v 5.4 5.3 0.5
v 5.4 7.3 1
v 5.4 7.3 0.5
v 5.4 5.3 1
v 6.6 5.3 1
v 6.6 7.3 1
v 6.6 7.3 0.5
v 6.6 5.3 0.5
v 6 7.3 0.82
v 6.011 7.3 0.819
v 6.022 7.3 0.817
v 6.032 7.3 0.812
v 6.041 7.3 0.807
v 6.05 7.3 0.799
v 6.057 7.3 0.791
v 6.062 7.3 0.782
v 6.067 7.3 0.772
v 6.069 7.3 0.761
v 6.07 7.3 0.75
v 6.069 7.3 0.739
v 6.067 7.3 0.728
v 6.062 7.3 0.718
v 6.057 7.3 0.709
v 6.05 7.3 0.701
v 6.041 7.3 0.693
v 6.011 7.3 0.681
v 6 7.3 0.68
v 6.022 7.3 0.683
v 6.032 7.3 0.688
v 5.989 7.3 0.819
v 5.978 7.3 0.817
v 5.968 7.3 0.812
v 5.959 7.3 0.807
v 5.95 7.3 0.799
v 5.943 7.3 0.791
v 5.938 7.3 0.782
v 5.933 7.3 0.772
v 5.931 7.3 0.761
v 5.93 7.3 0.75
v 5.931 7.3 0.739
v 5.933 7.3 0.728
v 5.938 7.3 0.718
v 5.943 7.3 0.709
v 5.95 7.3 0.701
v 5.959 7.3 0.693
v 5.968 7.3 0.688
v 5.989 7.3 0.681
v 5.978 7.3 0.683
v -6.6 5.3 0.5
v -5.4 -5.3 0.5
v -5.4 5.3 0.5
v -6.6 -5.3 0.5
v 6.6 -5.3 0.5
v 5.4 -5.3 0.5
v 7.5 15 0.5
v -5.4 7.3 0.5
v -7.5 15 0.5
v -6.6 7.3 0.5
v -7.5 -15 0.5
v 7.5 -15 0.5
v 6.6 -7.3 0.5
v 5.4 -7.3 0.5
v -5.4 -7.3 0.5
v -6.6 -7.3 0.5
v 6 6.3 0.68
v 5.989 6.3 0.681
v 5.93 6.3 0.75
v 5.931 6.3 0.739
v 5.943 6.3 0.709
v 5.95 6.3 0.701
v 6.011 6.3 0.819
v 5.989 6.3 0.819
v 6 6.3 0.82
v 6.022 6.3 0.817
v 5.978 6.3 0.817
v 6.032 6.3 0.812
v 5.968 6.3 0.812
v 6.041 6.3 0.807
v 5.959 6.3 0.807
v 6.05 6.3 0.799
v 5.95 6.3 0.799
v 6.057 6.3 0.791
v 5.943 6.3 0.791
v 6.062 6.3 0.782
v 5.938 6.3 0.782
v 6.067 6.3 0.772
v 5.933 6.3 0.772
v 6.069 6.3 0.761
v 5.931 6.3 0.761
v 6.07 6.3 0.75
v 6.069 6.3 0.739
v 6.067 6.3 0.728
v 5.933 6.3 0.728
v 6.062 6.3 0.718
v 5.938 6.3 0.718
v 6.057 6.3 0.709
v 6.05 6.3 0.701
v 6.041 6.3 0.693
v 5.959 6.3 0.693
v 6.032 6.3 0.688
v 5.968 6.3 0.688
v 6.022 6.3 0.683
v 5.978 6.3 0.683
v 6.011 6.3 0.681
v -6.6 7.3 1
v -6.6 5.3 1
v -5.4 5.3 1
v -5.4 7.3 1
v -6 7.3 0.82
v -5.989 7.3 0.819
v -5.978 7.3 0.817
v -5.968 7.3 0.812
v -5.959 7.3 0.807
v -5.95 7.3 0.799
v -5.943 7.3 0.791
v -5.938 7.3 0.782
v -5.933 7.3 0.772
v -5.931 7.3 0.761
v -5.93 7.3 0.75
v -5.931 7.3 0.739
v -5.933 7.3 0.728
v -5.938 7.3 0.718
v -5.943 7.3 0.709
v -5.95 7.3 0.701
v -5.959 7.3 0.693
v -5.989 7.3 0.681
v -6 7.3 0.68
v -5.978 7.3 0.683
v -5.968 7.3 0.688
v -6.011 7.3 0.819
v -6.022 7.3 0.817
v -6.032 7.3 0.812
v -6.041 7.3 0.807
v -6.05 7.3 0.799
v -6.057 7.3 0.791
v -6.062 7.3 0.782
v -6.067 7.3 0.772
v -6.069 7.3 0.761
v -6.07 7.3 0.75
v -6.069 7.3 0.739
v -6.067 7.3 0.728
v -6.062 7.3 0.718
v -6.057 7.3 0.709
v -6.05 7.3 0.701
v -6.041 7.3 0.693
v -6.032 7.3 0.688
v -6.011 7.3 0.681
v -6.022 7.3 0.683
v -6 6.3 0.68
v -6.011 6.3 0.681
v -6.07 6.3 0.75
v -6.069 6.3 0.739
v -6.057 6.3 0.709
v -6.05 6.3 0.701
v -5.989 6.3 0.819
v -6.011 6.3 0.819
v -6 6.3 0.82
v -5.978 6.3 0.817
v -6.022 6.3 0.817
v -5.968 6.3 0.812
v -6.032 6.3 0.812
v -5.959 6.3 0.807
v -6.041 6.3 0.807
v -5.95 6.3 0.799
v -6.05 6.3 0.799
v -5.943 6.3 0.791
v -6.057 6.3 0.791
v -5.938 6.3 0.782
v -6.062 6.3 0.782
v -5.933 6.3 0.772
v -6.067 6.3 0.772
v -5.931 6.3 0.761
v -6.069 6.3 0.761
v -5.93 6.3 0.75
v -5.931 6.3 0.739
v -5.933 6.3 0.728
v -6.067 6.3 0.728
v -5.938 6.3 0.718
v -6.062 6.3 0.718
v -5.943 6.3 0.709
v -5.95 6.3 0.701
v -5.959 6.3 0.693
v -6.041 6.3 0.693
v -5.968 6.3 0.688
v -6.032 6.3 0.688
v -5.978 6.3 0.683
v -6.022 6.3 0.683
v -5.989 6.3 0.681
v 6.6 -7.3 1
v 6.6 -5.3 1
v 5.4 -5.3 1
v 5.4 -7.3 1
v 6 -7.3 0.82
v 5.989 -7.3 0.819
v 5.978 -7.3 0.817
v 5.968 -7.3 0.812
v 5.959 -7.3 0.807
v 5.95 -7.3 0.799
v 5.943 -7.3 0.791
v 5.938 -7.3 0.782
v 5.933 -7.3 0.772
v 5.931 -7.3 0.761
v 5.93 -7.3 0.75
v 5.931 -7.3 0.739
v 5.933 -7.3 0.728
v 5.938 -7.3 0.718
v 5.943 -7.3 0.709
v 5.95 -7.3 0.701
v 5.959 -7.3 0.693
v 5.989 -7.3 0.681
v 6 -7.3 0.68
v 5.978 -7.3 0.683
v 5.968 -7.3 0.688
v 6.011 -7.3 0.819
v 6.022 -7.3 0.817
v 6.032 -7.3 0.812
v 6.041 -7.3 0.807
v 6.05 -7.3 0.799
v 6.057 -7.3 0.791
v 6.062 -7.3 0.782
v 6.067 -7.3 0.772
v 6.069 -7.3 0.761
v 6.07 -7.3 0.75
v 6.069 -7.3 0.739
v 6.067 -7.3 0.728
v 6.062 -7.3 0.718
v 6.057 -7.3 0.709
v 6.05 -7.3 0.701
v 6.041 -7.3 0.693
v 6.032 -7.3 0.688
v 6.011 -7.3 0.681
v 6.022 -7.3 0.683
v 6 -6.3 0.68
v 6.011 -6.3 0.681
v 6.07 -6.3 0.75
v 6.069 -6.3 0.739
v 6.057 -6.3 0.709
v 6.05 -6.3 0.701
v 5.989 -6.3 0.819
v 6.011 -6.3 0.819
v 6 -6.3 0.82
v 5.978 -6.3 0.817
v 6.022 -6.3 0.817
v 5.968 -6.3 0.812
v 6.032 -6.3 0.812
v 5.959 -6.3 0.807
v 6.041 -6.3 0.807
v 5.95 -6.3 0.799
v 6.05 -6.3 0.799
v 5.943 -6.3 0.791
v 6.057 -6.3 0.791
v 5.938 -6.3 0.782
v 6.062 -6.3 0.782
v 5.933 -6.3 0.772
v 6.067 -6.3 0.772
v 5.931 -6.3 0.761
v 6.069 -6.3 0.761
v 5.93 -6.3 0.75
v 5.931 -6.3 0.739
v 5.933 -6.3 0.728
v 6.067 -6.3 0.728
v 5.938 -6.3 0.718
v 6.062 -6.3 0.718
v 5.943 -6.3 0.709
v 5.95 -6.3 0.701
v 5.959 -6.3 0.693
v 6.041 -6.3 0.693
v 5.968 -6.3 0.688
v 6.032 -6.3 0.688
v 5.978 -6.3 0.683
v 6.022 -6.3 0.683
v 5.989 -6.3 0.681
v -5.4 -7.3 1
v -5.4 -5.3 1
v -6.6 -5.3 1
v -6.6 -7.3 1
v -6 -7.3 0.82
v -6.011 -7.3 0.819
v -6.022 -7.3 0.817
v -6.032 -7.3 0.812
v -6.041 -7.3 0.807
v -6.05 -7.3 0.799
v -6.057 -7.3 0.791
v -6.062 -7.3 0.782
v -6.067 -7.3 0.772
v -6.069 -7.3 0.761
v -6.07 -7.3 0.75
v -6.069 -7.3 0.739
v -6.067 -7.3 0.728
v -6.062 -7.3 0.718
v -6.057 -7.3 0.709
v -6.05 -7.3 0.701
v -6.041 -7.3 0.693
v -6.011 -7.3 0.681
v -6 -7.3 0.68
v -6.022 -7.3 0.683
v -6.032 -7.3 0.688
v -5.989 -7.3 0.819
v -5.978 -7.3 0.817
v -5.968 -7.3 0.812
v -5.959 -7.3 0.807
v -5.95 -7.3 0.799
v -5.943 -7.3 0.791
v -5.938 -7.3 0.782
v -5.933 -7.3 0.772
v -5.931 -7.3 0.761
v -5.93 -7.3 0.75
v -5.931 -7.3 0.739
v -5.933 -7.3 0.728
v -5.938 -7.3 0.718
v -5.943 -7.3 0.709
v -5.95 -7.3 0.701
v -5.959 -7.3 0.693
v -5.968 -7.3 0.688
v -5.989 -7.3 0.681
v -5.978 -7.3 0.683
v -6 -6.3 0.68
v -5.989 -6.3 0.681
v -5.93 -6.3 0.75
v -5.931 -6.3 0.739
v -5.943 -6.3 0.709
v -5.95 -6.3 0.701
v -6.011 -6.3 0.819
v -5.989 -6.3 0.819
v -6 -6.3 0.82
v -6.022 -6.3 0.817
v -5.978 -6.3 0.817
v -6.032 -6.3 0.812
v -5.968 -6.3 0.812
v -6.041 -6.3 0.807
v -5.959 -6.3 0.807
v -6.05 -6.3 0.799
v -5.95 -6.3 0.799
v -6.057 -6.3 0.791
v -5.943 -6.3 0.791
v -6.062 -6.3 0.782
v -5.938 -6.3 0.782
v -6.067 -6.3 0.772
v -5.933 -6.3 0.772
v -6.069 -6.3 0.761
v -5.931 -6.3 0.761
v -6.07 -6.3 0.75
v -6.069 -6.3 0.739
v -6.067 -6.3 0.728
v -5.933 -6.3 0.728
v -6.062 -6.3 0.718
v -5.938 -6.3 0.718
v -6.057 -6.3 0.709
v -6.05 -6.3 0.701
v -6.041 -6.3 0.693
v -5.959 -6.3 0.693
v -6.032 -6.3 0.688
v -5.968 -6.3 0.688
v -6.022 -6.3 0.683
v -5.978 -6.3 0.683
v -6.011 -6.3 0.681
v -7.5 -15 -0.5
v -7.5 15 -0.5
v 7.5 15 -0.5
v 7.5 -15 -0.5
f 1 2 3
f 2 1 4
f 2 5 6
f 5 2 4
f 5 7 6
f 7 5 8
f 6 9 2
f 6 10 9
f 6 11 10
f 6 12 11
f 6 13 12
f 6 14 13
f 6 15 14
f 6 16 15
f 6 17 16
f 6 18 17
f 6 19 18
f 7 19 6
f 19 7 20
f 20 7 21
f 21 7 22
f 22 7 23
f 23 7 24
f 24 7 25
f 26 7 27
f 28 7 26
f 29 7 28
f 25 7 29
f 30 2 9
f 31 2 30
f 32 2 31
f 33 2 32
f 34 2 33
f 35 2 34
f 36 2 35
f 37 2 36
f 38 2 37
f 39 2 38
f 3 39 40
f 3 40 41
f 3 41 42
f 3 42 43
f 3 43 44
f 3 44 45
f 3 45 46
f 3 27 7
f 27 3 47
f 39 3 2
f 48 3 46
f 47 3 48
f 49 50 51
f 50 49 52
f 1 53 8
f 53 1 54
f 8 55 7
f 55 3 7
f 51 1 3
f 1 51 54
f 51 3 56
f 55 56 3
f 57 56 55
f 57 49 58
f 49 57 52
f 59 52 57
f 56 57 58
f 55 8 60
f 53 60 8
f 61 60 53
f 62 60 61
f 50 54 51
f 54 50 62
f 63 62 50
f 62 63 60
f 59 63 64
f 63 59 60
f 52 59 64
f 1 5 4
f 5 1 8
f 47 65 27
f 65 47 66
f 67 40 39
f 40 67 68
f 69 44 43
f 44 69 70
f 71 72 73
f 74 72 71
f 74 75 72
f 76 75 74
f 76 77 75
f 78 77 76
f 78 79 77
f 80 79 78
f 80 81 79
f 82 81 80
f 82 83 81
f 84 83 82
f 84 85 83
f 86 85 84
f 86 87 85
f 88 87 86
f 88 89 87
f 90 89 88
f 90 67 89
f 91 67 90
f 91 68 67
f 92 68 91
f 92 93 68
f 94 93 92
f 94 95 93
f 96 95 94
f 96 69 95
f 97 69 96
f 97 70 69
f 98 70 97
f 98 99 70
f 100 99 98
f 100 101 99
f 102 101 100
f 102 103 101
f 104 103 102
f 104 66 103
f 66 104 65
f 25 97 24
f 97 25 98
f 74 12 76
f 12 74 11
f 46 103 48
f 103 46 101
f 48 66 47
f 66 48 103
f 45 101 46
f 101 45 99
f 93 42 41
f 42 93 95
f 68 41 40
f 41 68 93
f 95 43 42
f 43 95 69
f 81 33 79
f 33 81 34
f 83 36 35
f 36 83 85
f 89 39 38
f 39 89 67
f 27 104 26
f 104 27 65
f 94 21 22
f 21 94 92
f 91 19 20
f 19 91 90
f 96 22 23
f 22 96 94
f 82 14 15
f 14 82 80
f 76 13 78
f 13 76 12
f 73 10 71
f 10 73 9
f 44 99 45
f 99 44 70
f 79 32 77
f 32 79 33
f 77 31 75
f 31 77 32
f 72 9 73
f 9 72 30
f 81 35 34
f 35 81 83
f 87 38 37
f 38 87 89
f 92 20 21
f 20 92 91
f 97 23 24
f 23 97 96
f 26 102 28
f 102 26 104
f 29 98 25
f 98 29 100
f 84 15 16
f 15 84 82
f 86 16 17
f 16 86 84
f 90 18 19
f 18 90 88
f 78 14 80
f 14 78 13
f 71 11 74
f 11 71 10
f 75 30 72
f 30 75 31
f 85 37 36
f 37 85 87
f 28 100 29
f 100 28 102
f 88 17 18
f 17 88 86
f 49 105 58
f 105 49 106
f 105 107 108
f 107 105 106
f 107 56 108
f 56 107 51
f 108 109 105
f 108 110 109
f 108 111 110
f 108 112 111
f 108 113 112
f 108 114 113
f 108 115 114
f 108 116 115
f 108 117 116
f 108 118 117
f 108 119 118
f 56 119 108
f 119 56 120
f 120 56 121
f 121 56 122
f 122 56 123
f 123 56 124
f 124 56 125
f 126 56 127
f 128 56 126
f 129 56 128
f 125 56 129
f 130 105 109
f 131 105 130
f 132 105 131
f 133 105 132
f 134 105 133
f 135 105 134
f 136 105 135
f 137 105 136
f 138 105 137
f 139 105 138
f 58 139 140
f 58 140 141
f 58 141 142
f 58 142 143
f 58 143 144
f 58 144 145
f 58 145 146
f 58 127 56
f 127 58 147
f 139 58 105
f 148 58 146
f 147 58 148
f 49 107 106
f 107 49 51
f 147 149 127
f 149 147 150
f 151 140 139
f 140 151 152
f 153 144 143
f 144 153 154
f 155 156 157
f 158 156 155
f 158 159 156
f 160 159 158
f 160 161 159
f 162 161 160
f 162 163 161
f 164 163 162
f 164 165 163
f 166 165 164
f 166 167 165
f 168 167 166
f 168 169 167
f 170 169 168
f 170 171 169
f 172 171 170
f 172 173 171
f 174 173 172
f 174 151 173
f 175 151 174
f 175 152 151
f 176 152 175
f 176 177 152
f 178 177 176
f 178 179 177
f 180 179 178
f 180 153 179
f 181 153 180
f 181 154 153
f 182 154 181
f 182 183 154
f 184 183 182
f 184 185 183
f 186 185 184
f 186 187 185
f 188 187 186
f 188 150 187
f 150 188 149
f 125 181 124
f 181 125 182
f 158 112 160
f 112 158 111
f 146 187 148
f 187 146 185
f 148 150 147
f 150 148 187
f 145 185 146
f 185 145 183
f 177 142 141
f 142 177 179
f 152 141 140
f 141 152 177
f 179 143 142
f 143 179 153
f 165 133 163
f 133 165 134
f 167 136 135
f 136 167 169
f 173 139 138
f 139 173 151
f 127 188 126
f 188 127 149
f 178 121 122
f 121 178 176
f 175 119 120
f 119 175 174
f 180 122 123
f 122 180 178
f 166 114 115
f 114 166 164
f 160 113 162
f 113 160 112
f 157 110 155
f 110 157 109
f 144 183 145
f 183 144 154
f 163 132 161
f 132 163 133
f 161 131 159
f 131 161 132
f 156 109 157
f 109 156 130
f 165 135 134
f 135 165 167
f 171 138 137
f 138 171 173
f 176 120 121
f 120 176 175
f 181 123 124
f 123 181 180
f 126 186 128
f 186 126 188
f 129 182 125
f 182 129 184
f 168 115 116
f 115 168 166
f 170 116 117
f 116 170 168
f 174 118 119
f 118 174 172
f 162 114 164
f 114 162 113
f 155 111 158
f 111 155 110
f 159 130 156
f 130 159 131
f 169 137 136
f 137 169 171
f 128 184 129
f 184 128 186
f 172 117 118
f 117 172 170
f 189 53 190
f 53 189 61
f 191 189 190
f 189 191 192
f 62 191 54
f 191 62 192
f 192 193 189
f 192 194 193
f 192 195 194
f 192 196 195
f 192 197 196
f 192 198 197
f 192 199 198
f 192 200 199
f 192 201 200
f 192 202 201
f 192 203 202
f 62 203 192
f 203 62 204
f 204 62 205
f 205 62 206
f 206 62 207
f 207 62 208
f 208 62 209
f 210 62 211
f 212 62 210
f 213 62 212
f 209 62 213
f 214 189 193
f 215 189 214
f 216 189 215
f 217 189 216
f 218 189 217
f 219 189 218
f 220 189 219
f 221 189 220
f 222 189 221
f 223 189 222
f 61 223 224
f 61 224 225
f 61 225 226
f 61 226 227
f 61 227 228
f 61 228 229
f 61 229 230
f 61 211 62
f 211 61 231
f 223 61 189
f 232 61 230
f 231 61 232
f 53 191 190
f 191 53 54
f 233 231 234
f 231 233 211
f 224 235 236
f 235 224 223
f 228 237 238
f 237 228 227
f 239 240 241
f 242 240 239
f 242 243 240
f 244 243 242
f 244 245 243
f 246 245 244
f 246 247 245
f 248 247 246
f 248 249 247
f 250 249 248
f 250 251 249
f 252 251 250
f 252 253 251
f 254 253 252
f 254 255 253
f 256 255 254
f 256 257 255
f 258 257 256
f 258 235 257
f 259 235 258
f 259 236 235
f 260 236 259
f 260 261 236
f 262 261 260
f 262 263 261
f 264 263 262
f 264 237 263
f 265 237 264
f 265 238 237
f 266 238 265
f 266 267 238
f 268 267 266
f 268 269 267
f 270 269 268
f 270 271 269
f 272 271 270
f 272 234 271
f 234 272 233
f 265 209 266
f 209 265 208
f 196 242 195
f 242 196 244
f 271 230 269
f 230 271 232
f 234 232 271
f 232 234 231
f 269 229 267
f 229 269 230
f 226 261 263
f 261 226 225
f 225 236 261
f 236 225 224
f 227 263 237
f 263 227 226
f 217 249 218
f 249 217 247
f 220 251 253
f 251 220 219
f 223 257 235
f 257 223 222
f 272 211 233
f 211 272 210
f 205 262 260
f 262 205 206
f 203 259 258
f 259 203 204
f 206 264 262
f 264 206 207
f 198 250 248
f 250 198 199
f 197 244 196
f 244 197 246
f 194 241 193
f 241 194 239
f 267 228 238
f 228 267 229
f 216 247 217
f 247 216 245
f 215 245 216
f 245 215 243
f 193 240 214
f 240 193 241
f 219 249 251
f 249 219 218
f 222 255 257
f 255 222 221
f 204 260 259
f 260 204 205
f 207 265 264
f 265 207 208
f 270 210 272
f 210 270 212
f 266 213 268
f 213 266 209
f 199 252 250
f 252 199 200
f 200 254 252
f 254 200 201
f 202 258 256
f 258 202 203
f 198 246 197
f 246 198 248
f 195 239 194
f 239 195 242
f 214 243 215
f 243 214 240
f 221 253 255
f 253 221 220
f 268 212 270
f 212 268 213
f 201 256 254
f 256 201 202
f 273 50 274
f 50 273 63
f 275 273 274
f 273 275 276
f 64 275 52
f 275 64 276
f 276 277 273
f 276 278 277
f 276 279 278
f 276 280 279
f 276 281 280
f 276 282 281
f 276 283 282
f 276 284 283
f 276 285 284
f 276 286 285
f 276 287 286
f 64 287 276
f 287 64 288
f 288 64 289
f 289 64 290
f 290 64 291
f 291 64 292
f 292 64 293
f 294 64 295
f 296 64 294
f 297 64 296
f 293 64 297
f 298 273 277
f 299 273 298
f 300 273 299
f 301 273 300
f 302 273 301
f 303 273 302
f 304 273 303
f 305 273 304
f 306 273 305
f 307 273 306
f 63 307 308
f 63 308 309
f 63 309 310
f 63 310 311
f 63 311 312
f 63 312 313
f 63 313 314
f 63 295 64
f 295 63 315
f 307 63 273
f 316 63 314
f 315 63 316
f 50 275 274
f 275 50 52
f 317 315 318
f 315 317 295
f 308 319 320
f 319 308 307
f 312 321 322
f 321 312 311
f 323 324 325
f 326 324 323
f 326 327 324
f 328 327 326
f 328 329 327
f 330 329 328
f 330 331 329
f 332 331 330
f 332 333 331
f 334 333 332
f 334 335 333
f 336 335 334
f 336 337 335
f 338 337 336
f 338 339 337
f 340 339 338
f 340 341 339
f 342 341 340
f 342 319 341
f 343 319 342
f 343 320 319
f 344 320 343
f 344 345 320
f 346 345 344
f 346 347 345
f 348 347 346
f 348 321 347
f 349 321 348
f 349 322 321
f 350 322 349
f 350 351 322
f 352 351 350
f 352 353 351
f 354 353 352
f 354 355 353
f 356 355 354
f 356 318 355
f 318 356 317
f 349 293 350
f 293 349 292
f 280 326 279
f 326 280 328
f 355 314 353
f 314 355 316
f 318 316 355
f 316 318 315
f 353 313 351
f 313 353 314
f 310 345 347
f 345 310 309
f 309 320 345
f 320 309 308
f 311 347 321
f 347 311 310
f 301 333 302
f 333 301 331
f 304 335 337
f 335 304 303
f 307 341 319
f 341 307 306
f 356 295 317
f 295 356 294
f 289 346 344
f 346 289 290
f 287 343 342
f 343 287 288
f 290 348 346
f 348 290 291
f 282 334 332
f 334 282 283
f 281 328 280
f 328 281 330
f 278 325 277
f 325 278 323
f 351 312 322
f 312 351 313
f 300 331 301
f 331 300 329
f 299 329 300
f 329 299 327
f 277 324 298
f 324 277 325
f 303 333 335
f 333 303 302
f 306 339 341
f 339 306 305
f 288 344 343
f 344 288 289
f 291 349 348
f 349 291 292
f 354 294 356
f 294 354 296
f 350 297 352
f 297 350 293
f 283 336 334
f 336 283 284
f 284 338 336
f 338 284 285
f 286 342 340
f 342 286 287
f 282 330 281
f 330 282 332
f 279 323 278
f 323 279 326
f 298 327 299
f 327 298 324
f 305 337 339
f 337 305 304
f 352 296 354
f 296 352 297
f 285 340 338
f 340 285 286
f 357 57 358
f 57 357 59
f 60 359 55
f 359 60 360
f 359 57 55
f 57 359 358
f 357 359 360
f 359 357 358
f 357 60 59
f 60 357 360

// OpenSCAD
cube([15,30,1], center=true);

translate([6,6.3,0.75]) difference() {
cube([1.2,2,0.5], center=true);
rotate([270,90,0]) cylinder(h=2, r=0.07, $fn=40);
}

translate([-6,6.3,0.75]) difference() {
cube([1.2,2,0.5], center=true);
rotate([270,90,0]) cylinder(h=2, r=0.07, $fn=40);
}
translate([6,-6.3,0.75]) rotate([0,0,180]) difference() {
cube([1.2,2,0.5], center=true);
rotate([270,90,0]) cylinder(h=2, r=0.07, $fn=40);
}
translate([-6,-6.3,0.75]) rotate([0,0,180]) difference() {
cube([1.2,2,0.5], center=true);
rotate([270,90,0]) cylinder(h=2, r=0.07, $fn=40);
}
